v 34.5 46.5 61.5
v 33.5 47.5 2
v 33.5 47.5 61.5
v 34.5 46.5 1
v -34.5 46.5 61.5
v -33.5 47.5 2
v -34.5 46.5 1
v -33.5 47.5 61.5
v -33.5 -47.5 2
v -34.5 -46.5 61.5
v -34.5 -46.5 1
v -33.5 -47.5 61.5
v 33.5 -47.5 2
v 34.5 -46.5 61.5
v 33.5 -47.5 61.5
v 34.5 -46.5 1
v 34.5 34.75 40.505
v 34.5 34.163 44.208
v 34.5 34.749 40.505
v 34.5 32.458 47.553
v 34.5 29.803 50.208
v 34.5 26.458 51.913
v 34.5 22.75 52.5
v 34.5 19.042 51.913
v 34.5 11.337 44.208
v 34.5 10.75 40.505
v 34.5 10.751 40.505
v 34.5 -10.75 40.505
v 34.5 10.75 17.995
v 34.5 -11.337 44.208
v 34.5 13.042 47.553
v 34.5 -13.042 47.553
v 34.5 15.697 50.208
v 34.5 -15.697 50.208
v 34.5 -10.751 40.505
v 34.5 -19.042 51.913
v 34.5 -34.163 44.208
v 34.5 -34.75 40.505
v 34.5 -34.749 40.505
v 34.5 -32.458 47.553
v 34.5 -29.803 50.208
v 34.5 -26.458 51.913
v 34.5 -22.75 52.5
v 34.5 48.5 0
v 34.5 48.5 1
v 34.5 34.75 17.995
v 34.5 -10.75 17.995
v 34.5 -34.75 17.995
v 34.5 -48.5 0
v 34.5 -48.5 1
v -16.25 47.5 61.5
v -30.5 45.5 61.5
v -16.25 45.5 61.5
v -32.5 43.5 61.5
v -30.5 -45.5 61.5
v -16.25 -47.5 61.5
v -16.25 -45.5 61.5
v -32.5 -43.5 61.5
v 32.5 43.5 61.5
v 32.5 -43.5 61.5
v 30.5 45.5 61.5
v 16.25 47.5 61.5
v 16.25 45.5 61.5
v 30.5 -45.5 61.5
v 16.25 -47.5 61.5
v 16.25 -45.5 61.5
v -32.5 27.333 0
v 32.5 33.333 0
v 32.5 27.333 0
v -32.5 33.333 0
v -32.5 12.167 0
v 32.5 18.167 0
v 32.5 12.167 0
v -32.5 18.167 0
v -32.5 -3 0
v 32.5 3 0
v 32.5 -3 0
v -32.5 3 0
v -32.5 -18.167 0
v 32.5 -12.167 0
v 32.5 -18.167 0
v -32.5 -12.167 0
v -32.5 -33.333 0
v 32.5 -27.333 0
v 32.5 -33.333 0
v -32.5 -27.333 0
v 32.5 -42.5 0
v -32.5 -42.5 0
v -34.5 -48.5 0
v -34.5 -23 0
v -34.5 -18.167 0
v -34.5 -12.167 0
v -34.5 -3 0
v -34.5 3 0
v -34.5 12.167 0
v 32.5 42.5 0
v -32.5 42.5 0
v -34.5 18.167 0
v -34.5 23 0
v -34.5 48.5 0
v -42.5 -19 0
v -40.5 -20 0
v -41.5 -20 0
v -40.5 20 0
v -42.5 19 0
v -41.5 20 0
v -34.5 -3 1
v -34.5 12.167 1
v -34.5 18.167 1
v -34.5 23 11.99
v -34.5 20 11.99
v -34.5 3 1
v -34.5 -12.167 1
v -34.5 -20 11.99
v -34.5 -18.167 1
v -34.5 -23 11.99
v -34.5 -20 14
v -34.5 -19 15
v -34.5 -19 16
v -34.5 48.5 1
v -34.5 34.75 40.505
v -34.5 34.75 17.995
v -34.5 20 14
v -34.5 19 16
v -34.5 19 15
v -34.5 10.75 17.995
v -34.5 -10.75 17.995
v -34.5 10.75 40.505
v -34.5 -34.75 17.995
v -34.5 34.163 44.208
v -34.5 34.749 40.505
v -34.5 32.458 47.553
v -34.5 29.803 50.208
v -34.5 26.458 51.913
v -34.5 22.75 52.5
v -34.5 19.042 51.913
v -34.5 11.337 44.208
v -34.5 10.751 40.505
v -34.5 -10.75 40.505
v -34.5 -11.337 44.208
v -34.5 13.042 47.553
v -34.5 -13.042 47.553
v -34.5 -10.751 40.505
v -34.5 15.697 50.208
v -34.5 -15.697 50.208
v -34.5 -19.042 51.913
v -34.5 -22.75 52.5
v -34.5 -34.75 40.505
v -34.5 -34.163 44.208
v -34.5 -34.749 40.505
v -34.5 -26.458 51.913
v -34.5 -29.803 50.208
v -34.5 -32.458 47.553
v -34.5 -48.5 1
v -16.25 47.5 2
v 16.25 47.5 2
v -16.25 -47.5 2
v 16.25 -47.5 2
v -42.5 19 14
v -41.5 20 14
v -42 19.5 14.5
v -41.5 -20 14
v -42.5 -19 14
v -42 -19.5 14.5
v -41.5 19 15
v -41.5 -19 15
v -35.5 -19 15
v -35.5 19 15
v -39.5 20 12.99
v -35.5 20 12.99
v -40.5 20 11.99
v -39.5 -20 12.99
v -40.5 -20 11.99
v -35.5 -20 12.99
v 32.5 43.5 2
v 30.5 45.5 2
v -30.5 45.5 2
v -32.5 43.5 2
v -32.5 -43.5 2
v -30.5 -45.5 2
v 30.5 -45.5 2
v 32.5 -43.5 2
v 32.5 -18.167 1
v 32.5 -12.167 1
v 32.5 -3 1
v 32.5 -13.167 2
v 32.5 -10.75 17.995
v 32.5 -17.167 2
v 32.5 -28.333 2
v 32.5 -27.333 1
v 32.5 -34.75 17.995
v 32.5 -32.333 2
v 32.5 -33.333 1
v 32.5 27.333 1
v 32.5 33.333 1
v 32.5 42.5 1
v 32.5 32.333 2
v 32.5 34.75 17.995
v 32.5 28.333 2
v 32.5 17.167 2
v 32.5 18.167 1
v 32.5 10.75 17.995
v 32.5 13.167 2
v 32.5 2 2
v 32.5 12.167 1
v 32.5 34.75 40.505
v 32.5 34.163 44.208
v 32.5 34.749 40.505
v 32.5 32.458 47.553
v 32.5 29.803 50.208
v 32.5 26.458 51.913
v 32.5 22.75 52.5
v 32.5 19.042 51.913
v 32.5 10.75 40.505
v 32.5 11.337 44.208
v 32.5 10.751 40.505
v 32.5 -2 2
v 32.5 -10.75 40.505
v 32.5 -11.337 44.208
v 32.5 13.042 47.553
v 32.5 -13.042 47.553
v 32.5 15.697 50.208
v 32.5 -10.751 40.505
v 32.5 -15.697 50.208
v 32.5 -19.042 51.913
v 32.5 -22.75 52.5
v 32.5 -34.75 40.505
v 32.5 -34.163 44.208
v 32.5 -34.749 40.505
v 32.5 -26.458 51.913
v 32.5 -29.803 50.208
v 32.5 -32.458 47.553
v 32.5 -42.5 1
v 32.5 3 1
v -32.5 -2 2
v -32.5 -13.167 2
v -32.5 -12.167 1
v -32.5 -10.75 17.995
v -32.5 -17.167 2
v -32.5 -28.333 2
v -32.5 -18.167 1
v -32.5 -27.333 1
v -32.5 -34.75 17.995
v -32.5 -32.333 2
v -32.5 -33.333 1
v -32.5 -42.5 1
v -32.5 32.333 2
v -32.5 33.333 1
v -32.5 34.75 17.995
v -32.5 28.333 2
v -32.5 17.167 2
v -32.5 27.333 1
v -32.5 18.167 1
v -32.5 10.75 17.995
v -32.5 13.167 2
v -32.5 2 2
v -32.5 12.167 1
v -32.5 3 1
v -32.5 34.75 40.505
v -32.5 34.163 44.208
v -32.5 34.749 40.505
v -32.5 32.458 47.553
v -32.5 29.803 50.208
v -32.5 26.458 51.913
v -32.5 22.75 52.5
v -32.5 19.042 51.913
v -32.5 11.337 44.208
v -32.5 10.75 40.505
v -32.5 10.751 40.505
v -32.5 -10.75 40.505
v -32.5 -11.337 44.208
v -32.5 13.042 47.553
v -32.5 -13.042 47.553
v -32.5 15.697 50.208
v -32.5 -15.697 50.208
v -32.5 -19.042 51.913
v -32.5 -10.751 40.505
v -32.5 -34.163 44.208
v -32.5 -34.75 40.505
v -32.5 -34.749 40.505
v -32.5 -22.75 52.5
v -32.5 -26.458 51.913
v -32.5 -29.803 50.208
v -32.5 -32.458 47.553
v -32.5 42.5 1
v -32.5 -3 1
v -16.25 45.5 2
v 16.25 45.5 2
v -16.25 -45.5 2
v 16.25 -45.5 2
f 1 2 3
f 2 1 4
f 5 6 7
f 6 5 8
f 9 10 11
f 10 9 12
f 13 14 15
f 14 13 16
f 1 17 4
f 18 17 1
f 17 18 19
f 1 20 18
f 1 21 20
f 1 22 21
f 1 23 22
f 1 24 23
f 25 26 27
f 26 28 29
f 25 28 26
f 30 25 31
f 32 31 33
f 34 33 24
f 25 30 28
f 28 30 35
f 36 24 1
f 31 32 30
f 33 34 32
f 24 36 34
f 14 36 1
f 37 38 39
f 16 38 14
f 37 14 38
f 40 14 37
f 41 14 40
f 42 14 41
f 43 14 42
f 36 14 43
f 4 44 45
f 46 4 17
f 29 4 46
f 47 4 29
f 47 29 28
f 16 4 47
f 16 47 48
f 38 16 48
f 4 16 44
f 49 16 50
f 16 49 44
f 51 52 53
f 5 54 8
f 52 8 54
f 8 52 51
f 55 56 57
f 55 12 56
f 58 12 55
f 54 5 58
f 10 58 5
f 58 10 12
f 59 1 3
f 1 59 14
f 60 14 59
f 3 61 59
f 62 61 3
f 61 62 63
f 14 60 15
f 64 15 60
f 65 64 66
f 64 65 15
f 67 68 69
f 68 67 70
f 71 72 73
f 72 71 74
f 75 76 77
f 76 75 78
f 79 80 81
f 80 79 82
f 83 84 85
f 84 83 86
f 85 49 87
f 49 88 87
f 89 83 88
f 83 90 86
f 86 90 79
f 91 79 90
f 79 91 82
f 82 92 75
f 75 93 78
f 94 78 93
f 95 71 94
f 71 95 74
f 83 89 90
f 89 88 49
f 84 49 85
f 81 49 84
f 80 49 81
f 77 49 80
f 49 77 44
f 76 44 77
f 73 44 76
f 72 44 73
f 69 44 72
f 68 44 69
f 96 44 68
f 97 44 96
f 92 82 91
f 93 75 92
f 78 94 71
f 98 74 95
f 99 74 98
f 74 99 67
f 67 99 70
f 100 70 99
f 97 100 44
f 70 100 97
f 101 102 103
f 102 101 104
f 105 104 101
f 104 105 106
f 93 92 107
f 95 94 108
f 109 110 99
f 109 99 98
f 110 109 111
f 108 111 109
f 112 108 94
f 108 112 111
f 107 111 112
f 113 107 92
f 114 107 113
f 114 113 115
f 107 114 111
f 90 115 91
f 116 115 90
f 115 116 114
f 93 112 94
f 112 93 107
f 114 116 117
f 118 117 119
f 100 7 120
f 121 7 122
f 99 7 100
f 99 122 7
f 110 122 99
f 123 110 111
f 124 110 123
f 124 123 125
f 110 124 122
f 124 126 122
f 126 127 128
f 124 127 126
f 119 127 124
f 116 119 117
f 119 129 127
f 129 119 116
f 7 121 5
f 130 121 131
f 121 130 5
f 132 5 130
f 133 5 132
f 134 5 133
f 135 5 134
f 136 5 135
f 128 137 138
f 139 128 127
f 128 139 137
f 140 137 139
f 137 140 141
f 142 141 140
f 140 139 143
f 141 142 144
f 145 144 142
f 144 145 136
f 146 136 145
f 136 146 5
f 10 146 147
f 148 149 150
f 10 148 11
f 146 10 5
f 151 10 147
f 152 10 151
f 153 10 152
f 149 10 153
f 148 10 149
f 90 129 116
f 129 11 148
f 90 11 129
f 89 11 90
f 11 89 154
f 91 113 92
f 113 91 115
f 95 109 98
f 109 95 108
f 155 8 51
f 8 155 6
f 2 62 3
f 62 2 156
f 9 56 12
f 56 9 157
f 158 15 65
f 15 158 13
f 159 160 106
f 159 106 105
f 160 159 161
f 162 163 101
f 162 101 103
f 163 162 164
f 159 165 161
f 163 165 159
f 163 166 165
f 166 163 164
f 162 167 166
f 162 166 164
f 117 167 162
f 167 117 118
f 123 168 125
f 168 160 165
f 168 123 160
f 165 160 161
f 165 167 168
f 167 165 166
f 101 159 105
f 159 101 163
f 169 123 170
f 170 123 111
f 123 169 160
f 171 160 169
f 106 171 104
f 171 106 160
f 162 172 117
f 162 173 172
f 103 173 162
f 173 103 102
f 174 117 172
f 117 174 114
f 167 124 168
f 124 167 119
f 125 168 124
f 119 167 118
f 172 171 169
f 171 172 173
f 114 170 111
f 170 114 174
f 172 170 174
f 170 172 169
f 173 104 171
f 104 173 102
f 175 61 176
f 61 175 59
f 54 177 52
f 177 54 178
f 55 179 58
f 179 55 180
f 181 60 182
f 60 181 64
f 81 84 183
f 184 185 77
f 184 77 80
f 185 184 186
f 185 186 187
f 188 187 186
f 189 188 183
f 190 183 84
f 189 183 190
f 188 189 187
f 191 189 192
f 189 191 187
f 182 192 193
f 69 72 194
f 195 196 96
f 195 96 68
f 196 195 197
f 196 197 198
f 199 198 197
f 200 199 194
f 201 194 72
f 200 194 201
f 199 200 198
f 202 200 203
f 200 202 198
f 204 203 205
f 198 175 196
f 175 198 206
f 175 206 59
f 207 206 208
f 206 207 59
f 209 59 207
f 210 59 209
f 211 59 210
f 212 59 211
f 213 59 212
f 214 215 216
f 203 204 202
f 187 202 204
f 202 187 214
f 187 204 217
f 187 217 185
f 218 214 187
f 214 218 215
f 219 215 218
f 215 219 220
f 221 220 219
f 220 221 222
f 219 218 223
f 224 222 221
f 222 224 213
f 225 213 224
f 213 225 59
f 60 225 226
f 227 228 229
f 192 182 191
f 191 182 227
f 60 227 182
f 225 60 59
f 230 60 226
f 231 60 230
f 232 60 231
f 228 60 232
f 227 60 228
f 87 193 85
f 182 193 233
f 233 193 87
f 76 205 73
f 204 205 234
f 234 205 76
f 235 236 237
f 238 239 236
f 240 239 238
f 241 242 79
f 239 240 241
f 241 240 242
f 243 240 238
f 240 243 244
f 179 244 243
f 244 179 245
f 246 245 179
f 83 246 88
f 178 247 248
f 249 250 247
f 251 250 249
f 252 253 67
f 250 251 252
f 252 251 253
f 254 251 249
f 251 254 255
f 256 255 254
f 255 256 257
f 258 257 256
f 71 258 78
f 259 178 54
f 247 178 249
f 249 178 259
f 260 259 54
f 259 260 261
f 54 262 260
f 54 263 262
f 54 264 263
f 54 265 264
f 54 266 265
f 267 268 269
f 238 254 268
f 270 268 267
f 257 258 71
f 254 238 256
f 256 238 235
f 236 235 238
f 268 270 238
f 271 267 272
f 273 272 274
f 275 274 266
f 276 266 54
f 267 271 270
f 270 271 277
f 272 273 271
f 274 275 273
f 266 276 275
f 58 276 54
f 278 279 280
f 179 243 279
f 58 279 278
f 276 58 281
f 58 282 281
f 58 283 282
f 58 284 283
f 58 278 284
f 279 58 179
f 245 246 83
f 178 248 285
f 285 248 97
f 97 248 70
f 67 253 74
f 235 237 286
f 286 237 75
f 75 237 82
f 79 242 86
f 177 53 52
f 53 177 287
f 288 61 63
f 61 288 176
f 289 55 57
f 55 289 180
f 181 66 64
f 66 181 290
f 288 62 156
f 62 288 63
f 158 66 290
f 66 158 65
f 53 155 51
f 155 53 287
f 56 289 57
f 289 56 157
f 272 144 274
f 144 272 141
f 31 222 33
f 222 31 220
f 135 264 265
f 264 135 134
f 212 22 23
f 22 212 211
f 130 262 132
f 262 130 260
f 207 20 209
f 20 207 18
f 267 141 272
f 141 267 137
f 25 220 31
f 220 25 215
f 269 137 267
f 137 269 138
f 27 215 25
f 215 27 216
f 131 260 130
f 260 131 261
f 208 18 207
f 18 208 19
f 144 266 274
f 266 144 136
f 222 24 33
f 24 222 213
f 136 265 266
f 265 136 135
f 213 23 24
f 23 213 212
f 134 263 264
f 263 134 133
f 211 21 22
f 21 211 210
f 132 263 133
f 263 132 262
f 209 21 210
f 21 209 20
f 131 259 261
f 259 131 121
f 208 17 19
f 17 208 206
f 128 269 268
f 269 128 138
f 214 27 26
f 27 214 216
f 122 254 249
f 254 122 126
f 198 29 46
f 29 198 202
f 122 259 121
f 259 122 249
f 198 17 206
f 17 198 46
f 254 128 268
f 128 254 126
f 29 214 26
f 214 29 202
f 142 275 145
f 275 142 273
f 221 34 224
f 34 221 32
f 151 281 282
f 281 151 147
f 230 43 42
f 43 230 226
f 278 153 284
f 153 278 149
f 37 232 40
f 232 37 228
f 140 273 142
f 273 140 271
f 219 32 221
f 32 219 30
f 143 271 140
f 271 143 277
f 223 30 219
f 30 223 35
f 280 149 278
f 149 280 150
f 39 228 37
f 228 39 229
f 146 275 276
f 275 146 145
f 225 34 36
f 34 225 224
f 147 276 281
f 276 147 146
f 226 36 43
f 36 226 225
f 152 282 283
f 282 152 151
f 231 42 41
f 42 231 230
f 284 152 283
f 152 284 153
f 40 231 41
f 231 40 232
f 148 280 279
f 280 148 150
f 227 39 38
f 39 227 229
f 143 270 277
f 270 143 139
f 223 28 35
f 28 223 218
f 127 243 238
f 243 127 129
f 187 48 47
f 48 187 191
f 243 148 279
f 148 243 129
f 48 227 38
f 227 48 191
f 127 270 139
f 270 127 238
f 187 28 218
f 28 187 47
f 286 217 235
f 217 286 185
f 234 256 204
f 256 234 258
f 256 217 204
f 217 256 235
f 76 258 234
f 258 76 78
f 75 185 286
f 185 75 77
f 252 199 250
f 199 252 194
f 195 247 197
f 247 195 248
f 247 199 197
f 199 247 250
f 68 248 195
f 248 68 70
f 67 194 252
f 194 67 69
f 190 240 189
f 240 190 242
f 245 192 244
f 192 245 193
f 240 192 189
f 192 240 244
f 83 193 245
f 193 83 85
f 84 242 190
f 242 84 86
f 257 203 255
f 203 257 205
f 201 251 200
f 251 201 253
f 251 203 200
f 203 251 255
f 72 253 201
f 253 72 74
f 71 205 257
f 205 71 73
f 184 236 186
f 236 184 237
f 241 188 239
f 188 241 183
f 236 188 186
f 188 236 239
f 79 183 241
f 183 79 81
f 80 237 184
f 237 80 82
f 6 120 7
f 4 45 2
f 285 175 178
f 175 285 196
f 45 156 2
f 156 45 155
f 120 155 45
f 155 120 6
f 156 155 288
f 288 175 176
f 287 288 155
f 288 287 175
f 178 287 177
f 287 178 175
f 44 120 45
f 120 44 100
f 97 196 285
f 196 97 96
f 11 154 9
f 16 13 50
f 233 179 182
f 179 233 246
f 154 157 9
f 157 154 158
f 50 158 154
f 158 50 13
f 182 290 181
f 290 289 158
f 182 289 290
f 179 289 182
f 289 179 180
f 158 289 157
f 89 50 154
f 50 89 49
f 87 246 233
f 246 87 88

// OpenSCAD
// file: base_objects.scad
/*

  base_objects.scad
  
  (c) olikraus@gmail.com

  This work is licensed under the Creative Commons Attribution-NonCommercial-ShareAlike 4.0 International License.
  To view a copy of this license, visit http://creativecommons.org/licenses/by-nc-sa/4.0/.

  SquareFrustum(bottom=[10,10], top=[0,0], h=10)
  CenterCube(dim, ChamferBody = 0, ChamferBottom=0, ChamferTop=0)
  Archoid(r=10, b=20, l=30)

*/


/*
  SquareFrustum(bottom=[10,10], top=[0,0], h=10)
  https://en.wikipedia.org/wiki/Frustum
  
  Args:
    buttom: Bottom square (width, height)
    top: Top square (width, height)
    h: Distance of the top square to z=0 plane
    ChamferBody: The amount to chamfer for edges parallel to z axis
  Notes:
    The bottom square is placed in the z=0 plane.
    The squares are centered around z axis.
  Example:
    SquareFrustum([20,20], [10,4], h=20);
    

    // create a rectangle bowl
    // same example as for CenterCube
    // SquareFrustum might be more flexible because it is not
    // restricted to the 45 degree chamfer
    
    union() {
      wallthickness=2;
      xwidth = 10;
      ywidth = 20;
      height = 5;
      translate([0,0,wallthickness])
      difference() {
        CenterCube([xwidth+2*wallthickness,ywidth+2*wallthickness,5-wallthickness]);
        CenterCube([xwidth,ywidth,5-wallthickness+0.01]);
      }    
      SquareFrustum(
        bottom=[xwidth,ywidth], 
        top=[xwidth+2*wallthickness,ywidth+2*wallthickness], 
        h=wallthickness);
    }
    
*/
module SquareFrustum_old(bottom=[10,10], top=[0,0], h=10) {
  lx = bottom[0];
  ly = bottom[1];
  ux = top[0];
  uy = top[1];
  p = [
    [ -lx/2, -ly/2,  0 ],  //0
    [ lx/2,  -ly/2,  0 ],  //1
    [ lx/2,  ly/2,  0 ],  //2
    [ -lx/2,  ly/2,  0 ],  //3
    [ -ux/2, -uy/2,  h ],  //4
    [ ux/2,  -uy/2,  h ],  //5
    [ ux/2,  uy/2,  h ],  //6
    [ -ux/2,  uy/2,  h ]]; //7
    
  f = [
    [0,1,2,3],  // bottom
    [4,5,1,0],  // front
    [7,6,5,4],  // top
    [5,6,2,1],  // right
    [6,7,3,2],  // back
    [7,4,0,3]]; // left
  polyhedron( p, f );
}

module SquareFrustum(bottom=[10,10], top=[0,0], h=10, ChamferBody=0) {
  c = ChamferBody/2;
  lx = bottom[0]-2*c;
  ly = bottom[1]-2*c;
  ux = top[0]-2*c;
  uy = top[1]-2*c;
  p = [
    [ -lx/2-c, -ly/2+c,  0 ],  //0 / 0, 0
    [ -lx/2+c, -ly/2-c,  0 ],  //0 / 1, 1
  
    [ lx/2-c,  -ly/2-c,  0 ],  //1 / 0, 2
    [ lx/2+c,  -ly/2+c,  0 ],  //1 / 1, 3
  
    [ lx/2+c,  ly/2-c,  0 ],  //2 / 0, 4
    [ lx/2-c,  ly/2+c,  0 ],  //2 / 1, 5
  
    [ -lx/2+c,  ly/2+c,  0 ],  //3 / 0, 6
    [ -lx/2-c,  ly/2-c,  0 ],  //3 / 1, 7
  
    [ -ux/2-c, -uy/2+c,  h ],  //4 / 0, 8
    [ -ux/2+c, -uy/2-c,  h ],  //4 / 1, 9
  
    [ ux/2-c,  -uy/2-c,  h ],  //5 / 0, 10
    [ ux/2+c,  -uy/2+c,  h ],  //5 / 1, 11
 
    [ ux/2+c,  uy/2-c,  h ],  //6 / 0, 12
    [ ux/2-c,  uy/2+c,  h ],  //6 / 1, 13
    
    [ -ux/2+c,  uy/2+c,  h ], //7 / 0, 14
    [ -ux/2-c,  uy/2-c,  h ]]; //7 / 1, 15
    
  f = [
    [0,1,2,3,4,5,6,7],  // bottom
    [8,9,1,0], // front left
    [9,10,2,1],  // front 
    [10,11,3,2], // front right
    [15,14,13,12,11,10,9,8],  // top
    [11,12,4,3],  // right
    [12,13,5,4],  // back right
    [13,14,6,5],  // back
    [14,15,7,6], // back left
    [15,8,0,7]]; // left
  polyhedron( p, f );
}


/*
  ChamferZCube(w=1,h=10)

  A cube, which can be used to chamfer along the z axis

  Args:
    w: The width of the cube is sqrt(2)*w
    h: Height of the cube
    d: The cube has a descent below z=0 plane and an ascent beyond h by this value
  Notes:
    The cube is centered around z-axsis and placed on z=0 plane.

*/
module ChamferZCube(w=1,h=10, d=0) {
  translate([0,0,h/2])
  rotate([0,0,45])
  cube([sqrt(2)*w,sqrt(2)*w,h+2*d], center=true);
}

module ChamferXCube(w=1,h=10, d=0) {
  rotate([45,0,0])
  cube([h+2*d,sqrt(2)*w,sqrt(2)*w], center=true);
}

module ChamferYCube(w=1,h=10, d=0) {
  rotate([0,45,0])
  cube([sqrt(2)*w,h+2*d,sqrt(2)*w], center=true);
}

/*
  CenterCube(dim, ChamferBody = 0, ChamferBottom=0, ChamferTop=0)

  A cube which is centered along z axis but is placed on z=0 plane
  Optionally allows chamfer along z axis.

  Args:
    dim: Same as for cube(dim)
    ChamferBody: The amount to chamfer for edges parallel to z axis
    ChamferBottom: The amount to chamfer for edges in z=0 plane
    ChamferTop: The amount to chamfer for edges in z=dim[2] plane
  Example:
    CenterCube([10, 20, 5]);

    // create a rectangle bowl
    // thanks to chamfer no support is required with 3d print
    difference() {  
      wallthickness=2;
      xwidth = 10;
      ywidth = 20;
      height = 5;
      CenterCube( 
        [xwidth+2*wallthickness, ywidth+2*wallthickness, height], 
        ChamferBottom = wallthickness);
      translate([0,0,wallthickness])
      CenterCube([xwidth,ywidth,height]);
    }

*/

module CenterCube(dim, ChamferBody = 0, ChamferBottom=0, ChamferTop=0) {
  difference() {
    translate([0,0,dim[2]/2])
    cube(dim, center=true);

    if ( ChamferBody > 0 ) {
      translate([dim[0]/2,dim[1]/2,0])
      ChamferZCube(w=ChamferBody,h=dim[2],d=0.01);
      
      translate([-dim[0]/2,dim[1]/2,0])
      ChamferZCube(w=ChamferBody,h=dim[2],d=0.01);

      translate([-dim[0]/2,-dim[1]/2,0])
      ChamferZCube(w=ChamferBody,h=dim[2],d=0.01);

      translate([dim[0]/2,-dim[1]/2,0])
      ChamferZCube(w=ChamferBody,h=dim[2],d=0.01);
    }
    
    if ( ChamferBottom > 0 )
    {
      translate([-dim[0]/2,0,0])
      ChamferYCube(w=ChamferBottom,h=dim[1],d=0.01);

      translate([dim[0]/2,0,0])
      ChamferYCube(w=ChamferBottom,h=dim[1],d=0.01);

      translate([0,-dim[1]/2,0])
      ChamferXCube(w=ChamferBottom,h=dim[0],d=0.01);

      translate([0,dim[1]/2,0])
      ChamferXCube(w=ChamferBottom,h=dim[0],d=0.01);
    }
    
    if ( ChamferTop > 0 )
    {
      translate([-dim[0]/2,0,dim[2]])
      ChamferYCube(w=ChamferTop,h=dim[1],d=0.01);

      translate([dim[0]/2,0,dim[2]])
      ChamferYCube(w=ChamferTop,h=dim[1],d=0.01);

      translate([0,-dim[1]/2,dim[2]])
      ChamferXCube(w=ChamferTop,h=dim[0],d=0.01);

      translate([0,dim[1]/2,dim[2]])
      ChamferXCube(w=ChamferTop,h=dim[0],d=0.01);
    }
    
  }
}

/*
  Archoid(r=10, b=20, l=30)

  A chest like element with a half cylinder on the top
  and a box as a base.
  If used with difference, the result is a archway.

  Args:
    r: Radius of the half-cylinder
    b: height of the base block
    l: length of the chest in x direction.
    $fn: resolution of the half cylinder
  Notes:
    The width of the chest is 2*r, the height is b+r.
    Archoid(r=10, b=20, l=30, $fn=4) becomes a house.

*/
module Archoid(r=10, b=20, l=30) {
  union() {
    translate([0,0,b])
    difference() {
      rotate([0,90,0])
      cylinder(r=r,h=l,center=true);
      translate([0,0,-r])
      cube([2*l,2*l,2*r], center=true);
    }
    translate([0,0,b/2])
    cube([l,2*r,b+0.01], center=true);
  }
}
// main file
include <card_compare_machine.scad>;



module ccm_basket() {
  // inner dimensions of the house. 
  iw = card_width+card_gap_w;
  ih = card_height+card_gap_h;

  // outer dimensions of the house
  tw = card_width+card_gap_w+2*wall;
  th = card_height+card_gap_h+2*wall;

  difference() {  
    union() {

      // the main volume of the house
      // the slope is -6+x, so use 12
      CenterCube([tw,th,sorter_house_height-14], ChamferBody=1);

      // hook for the sorter
      translate([-tw/2-wall-1.5,0,0])
      CenterCube([wall*2+5,20*2,15], ChamferBody=1, ChamferTop=1);
      
      translate([-tw/2,0,15])
      ChamferYCube(w=1, h=20*2-2);
    }
  
    // hook cutout
    translate([-tw/2-wall-1,0,-0.01])
    CenterCube([wall+4,23*2,13], ChamferTop=1);
  
    // main inner cutout
    translate([0,0,-0.01])
    CenterCube([iw,ih,sorter_house_height+0.02], 
      ChamferBody=wall, ChamferTop=0);

    // open small sides of the basket
    translate([0,0,-0.01])
    CenterCube([iw/2,2*ih,sorter_house_height+0.02], 
      ChamferBody=wall, ChamferTop=0);

    //translate([0,  0,  12])

    CopyMirror([0,1,0])
    translate([0,ih/4,18])
    Archoid(r=12, b=sorter_house_height-14-12-15-12, l=2*card_width);

  }

  // add extra support for the complete block on the z=0 plane
  CopyMirror([0,1,0])
  translate([0,ih/3,0])
  CenterCube([tw, 6, wall], ChamferTop=1);

  CopyMirror([0,1,0])
  translate([0,ih/6,0])
  CenterCube([tw, 6, wall], ChamferTop=1);

  CopyMirror([0,1,0])
  translate([0,ih/2,0])
  CenterCube([tw, 6, wall], ChamferTop=1);

  CenterCube([tw, 6, wall], ChamferTop=1);

}

ccm_basket();

//translate([-card_width*1.3,0,0])
//sorter_house();
